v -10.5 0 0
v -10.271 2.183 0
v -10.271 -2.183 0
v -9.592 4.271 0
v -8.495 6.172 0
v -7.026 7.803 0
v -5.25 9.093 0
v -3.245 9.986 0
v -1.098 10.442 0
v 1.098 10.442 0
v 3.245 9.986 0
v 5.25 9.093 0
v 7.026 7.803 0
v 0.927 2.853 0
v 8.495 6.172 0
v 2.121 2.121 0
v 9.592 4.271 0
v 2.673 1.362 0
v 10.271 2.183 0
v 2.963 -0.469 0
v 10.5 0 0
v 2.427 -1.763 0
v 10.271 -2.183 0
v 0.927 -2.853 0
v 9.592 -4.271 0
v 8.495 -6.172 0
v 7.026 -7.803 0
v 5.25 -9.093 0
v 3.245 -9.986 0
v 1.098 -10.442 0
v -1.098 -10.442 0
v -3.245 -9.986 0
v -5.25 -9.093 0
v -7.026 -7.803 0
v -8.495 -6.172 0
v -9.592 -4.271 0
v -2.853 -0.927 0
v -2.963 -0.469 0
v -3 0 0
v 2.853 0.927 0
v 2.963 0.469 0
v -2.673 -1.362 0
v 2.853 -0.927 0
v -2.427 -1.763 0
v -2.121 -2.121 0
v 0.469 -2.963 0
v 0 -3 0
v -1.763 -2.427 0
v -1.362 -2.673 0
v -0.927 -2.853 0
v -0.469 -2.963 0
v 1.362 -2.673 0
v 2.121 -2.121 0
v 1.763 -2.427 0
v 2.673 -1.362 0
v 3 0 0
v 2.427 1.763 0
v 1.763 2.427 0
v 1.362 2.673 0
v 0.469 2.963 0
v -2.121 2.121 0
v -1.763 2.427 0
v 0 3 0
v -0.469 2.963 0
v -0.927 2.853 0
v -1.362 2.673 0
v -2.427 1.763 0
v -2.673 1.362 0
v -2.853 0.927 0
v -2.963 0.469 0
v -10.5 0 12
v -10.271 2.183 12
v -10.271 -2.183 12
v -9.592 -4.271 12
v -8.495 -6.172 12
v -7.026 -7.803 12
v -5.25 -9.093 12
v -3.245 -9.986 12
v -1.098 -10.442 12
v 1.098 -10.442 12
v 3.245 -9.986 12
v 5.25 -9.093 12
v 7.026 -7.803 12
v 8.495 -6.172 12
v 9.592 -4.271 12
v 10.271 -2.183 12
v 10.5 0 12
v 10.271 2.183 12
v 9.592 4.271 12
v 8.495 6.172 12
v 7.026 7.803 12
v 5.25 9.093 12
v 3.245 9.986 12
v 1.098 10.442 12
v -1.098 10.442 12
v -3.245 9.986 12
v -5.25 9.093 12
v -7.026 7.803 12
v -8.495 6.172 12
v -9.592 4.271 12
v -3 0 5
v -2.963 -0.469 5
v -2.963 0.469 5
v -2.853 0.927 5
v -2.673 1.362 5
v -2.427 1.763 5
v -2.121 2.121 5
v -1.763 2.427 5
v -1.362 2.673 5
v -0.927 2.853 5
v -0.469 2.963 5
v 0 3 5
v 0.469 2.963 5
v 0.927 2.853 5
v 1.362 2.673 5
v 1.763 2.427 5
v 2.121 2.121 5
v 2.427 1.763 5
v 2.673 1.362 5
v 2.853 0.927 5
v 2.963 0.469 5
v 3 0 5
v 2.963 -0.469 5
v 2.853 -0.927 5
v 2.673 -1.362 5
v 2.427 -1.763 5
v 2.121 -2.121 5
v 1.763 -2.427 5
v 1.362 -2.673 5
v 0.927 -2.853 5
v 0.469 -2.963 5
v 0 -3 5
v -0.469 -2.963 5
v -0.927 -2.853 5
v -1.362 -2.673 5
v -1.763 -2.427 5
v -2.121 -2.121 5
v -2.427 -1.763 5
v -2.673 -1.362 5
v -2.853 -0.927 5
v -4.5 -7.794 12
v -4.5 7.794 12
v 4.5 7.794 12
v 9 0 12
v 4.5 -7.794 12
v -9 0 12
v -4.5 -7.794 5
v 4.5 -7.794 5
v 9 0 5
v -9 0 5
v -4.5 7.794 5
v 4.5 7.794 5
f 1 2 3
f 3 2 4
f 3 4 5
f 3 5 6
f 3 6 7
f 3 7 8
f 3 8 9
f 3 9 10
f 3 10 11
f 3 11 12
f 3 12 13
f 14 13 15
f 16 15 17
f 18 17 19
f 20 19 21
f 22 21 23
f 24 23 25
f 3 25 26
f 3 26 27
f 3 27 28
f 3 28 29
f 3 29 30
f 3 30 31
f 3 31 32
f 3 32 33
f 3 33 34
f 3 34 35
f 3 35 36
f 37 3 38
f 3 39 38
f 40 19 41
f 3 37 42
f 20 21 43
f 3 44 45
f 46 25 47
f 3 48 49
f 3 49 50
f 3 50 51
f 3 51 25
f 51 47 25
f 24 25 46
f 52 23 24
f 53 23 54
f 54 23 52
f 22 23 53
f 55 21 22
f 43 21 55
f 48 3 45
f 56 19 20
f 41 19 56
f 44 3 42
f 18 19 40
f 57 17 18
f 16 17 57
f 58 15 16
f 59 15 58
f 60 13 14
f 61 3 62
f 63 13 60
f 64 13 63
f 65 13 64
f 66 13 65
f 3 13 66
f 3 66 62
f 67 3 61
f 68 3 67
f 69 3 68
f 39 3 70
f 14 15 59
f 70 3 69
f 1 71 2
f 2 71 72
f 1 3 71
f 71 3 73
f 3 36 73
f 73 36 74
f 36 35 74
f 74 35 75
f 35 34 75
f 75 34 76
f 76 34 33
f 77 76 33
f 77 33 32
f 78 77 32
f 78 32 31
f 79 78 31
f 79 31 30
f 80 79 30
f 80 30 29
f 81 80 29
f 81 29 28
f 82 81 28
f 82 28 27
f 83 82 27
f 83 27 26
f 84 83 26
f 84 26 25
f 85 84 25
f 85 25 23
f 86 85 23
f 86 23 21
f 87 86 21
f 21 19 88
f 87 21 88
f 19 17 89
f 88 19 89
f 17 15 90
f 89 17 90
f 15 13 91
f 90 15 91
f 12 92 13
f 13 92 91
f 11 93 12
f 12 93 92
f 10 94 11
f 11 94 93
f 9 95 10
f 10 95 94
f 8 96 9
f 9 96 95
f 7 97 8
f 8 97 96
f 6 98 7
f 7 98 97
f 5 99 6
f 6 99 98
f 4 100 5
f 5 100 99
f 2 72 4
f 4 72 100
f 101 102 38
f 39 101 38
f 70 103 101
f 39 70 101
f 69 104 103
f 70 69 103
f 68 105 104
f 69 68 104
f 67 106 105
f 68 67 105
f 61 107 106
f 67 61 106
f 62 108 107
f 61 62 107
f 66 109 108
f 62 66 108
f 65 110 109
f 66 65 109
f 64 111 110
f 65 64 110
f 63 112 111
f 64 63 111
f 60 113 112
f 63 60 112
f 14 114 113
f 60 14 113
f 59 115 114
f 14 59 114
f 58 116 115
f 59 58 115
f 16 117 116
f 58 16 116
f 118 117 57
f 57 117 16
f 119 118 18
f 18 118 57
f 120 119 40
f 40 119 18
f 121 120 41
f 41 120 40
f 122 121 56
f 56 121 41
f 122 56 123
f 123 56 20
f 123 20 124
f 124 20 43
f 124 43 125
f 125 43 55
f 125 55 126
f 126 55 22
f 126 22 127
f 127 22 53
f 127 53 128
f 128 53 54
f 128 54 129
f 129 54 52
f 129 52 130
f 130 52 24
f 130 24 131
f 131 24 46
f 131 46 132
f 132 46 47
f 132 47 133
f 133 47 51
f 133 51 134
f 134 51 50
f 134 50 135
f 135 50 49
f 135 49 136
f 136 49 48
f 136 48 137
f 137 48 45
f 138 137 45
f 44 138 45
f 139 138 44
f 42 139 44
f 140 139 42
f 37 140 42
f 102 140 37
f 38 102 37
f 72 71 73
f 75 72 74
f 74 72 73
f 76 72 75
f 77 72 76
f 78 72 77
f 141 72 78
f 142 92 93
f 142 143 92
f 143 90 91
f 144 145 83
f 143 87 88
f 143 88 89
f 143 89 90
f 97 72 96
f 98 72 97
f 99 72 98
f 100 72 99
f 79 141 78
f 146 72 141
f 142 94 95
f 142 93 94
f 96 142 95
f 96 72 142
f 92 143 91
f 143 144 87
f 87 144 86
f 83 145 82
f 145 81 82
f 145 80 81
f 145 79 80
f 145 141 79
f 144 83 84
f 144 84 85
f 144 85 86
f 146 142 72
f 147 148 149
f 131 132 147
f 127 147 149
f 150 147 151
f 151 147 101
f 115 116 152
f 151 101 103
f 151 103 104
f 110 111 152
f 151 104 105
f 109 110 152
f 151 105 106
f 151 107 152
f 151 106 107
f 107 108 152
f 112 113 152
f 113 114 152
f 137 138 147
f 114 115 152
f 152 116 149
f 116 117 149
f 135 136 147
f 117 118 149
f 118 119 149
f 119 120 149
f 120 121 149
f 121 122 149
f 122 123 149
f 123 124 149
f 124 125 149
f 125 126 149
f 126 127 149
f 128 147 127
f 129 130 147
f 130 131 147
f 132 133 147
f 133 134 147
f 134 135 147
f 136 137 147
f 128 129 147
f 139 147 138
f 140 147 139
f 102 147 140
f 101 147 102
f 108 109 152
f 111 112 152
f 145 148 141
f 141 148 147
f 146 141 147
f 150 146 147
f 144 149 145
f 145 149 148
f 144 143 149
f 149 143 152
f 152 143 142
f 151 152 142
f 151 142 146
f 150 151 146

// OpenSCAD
DrillMotorNutKeeper();

module DrillMotorNutKeeper()
{
	difference()
	{
		union()
		{
			translate([0,0,12/2])
				cylinder(r=21/2,h=12, center=true);
		}

		translate([0,0,15])
			cylinder(r=18/2,h=20, center=true, $fn=6);

		translate([0,0,5])
			cylinder(r=6/2,h=20, center=true, $fn=40);
	}
}
